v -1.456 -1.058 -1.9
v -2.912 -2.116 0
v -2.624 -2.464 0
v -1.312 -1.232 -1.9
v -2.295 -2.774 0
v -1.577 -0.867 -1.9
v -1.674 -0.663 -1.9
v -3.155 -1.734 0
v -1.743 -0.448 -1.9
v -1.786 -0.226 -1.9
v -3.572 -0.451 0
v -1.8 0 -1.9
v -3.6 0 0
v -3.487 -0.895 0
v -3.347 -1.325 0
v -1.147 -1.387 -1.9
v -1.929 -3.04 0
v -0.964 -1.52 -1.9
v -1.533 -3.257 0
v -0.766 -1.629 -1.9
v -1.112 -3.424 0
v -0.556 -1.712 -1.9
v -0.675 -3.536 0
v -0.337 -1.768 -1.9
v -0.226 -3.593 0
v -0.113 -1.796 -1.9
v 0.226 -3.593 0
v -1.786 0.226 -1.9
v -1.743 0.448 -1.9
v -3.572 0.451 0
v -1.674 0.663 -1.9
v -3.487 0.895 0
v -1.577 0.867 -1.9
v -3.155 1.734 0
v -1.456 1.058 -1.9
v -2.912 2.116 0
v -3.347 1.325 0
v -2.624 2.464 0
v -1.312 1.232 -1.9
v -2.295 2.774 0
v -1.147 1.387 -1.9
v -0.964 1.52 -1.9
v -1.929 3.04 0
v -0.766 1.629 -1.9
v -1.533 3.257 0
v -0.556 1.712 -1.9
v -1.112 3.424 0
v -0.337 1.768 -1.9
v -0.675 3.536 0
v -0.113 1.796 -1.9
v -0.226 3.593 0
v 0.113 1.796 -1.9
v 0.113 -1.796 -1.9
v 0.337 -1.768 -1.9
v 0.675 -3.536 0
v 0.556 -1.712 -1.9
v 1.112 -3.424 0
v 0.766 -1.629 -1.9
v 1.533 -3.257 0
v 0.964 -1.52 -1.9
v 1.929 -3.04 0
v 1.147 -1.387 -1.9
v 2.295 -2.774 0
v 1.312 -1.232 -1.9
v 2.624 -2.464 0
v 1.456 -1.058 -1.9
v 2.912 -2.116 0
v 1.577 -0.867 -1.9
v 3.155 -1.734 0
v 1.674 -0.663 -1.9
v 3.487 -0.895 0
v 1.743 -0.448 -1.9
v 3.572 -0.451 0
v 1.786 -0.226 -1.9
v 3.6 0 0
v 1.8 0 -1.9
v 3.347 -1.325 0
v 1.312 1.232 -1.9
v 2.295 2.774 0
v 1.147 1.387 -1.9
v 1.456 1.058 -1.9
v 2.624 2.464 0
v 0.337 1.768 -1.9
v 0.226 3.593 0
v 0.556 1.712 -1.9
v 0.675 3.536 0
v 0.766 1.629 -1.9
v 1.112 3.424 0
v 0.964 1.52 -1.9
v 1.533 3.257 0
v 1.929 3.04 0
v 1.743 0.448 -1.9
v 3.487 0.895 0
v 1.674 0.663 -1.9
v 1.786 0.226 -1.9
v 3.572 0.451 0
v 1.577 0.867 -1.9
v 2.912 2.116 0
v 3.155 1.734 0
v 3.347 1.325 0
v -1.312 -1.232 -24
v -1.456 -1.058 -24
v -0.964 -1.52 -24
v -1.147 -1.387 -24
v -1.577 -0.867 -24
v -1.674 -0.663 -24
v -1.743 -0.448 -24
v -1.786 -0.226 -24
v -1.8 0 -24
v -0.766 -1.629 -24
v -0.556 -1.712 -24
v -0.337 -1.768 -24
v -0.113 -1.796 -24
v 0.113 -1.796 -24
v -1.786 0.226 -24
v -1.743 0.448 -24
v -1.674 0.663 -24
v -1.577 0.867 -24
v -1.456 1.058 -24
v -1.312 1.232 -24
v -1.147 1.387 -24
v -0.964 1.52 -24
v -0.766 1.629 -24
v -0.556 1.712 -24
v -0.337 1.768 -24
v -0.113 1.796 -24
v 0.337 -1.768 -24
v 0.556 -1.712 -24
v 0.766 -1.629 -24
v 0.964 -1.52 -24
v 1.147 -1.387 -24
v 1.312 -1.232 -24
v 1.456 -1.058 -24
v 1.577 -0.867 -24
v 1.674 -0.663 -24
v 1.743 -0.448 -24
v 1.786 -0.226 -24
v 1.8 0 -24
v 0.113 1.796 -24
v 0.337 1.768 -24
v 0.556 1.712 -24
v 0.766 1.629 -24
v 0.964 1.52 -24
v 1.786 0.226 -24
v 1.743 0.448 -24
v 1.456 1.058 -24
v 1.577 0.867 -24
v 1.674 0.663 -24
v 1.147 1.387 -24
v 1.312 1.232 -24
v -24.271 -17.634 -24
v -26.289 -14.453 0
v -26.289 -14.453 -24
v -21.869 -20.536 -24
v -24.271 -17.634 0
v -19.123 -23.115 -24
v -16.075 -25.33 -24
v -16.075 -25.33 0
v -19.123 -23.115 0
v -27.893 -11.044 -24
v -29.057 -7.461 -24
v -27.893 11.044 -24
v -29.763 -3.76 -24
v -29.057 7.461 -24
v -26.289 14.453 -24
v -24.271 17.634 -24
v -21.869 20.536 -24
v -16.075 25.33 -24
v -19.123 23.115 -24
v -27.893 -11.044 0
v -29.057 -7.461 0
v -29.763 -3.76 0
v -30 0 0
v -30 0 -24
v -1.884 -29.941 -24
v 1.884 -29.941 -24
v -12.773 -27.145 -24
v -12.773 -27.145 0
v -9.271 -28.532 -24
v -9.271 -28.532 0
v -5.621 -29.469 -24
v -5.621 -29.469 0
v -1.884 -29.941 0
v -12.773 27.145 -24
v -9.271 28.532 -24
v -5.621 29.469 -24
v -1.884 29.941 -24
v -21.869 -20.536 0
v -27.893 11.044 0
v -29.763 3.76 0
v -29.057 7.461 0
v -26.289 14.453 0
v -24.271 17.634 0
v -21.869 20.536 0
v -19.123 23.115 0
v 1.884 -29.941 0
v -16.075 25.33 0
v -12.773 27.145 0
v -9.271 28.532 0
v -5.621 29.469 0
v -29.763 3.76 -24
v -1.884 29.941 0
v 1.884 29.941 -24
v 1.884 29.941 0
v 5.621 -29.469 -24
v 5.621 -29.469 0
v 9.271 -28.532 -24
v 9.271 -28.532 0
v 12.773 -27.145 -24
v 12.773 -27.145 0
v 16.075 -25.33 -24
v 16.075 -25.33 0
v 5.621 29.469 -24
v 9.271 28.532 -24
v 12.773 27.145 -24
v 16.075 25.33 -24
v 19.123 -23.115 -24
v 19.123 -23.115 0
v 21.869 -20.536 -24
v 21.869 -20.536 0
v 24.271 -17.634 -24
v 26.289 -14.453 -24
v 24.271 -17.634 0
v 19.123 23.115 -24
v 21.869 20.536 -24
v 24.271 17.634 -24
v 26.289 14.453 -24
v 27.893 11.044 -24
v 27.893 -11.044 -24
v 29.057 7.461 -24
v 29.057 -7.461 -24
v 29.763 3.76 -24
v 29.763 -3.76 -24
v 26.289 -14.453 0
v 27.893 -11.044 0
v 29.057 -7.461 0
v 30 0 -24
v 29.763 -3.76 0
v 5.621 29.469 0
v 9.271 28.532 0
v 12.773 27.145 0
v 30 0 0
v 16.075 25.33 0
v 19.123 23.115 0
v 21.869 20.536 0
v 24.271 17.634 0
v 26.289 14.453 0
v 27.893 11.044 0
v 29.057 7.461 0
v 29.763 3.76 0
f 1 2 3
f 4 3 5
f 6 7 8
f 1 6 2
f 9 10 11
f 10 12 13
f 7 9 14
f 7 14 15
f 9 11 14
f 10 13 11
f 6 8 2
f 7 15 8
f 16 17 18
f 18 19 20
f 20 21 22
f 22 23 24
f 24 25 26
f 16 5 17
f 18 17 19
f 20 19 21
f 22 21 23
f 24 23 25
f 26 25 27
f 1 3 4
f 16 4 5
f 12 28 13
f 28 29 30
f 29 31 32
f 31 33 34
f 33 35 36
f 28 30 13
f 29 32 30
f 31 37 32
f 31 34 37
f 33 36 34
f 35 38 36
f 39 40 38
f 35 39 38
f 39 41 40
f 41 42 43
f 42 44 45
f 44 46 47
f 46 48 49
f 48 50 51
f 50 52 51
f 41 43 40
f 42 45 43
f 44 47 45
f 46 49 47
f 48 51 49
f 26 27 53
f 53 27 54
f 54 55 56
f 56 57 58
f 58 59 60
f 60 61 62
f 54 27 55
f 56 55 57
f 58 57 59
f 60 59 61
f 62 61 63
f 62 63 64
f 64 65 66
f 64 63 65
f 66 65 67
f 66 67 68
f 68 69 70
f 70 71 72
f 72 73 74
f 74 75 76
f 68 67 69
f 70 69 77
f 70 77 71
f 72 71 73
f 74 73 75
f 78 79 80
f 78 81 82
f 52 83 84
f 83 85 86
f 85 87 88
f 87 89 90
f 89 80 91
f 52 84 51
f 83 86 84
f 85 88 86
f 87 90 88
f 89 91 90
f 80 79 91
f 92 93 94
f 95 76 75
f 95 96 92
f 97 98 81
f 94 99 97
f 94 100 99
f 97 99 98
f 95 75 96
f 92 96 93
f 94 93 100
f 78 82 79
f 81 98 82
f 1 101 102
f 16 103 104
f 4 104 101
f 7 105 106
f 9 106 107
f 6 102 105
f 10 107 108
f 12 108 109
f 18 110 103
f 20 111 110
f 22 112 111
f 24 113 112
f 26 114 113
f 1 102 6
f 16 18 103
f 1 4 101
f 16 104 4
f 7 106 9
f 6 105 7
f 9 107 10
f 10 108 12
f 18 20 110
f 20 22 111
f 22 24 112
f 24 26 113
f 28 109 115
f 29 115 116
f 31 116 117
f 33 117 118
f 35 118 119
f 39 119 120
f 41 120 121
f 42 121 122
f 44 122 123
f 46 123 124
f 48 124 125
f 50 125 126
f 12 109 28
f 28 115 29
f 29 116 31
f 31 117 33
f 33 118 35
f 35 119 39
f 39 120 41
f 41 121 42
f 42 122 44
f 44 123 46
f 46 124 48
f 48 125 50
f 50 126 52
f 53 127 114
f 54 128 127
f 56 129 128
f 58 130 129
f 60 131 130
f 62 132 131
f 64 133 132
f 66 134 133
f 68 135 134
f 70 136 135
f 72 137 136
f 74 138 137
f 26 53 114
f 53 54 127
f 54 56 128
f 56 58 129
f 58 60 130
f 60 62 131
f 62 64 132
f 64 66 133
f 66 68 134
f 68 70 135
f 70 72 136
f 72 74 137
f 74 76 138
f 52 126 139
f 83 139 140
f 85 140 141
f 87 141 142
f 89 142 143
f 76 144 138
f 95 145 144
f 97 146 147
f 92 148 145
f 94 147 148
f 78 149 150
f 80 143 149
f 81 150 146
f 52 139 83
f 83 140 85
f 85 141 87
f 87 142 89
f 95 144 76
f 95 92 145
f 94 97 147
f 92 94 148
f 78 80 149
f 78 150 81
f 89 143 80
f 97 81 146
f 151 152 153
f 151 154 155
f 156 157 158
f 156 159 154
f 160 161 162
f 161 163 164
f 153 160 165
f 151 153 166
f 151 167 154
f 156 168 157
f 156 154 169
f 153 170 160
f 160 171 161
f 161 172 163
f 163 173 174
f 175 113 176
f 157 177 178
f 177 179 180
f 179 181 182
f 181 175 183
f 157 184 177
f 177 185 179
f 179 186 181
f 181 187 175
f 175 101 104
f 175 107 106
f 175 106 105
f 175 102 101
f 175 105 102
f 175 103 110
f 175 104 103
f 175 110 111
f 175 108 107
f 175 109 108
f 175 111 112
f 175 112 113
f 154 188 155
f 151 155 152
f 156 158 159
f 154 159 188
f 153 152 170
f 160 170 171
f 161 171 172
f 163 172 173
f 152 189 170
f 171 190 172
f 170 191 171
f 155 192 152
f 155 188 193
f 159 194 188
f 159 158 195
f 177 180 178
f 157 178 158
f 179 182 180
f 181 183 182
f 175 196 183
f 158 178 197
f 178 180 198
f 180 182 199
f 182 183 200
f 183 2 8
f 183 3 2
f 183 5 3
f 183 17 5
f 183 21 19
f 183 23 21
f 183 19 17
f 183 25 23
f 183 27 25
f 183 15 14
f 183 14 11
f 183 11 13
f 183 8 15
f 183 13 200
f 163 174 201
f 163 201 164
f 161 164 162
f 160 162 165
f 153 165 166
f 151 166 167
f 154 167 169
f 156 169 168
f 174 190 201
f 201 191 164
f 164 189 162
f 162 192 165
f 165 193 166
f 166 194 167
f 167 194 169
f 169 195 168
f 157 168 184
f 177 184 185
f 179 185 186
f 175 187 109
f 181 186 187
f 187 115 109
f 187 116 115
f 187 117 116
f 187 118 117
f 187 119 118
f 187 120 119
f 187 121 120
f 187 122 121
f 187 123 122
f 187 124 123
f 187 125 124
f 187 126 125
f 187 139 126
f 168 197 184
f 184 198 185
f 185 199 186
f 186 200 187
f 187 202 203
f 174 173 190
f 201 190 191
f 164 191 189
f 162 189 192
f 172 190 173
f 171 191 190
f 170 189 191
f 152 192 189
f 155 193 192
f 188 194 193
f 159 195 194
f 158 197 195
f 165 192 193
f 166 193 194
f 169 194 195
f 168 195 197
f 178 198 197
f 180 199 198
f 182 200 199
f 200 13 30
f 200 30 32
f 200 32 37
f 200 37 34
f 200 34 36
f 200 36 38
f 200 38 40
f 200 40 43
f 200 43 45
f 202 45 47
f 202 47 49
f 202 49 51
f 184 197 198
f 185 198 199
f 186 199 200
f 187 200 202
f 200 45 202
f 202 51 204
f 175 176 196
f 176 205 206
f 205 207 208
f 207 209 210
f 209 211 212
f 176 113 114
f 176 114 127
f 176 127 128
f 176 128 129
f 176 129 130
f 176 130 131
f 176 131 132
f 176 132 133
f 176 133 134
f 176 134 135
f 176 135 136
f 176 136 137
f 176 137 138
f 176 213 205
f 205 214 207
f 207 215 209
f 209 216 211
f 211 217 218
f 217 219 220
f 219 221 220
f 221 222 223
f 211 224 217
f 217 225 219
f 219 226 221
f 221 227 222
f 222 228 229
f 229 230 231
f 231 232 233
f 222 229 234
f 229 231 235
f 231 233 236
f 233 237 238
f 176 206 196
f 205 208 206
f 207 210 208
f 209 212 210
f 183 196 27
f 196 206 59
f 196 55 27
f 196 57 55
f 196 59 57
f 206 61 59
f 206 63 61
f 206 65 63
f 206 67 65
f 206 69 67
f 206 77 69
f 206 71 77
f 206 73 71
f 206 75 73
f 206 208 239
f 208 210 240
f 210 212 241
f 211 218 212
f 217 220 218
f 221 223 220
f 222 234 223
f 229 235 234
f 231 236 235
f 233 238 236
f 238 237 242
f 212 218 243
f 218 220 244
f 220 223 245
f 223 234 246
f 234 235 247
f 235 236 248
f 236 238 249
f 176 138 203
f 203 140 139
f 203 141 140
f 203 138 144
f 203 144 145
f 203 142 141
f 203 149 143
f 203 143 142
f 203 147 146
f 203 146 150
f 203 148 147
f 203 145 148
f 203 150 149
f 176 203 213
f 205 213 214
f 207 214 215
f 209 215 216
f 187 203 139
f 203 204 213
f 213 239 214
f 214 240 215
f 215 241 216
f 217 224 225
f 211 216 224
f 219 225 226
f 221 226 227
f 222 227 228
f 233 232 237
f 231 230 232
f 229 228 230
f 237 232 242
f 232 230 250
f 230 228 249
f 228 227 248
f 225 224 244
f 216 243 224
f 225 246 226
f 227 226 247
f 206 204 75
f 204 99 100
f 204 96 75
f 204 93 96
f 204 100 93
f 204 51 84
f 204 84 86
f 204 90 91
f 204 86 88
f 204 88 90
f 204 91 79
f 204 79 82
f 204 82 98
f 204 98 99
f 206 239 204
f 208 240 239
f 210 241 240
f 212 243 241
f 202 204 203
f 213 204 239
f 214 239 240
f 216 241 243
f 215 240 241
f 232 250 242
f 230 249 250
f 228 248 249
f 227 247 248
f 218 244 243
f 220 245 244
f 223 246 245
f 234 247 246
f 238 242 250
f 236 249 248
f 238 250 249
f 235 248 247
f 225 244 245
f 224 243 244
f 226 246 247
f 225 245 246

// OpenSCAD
$fn = 50;

difference() {
	union() {
		translate(v = [0, 0, -24.0]) {
			cylinder(h = 24, r = 30.0);
		}
	}
	union() {
		translate(v = [0, 0, 0]) {
			rotate(a = [0, 0, 0]) {
				difference() {
					union() {
						translate(v = [0, 0, -27.0]) {
							cylinder(h = 27, r = 1.5);
						}
						translate(v = [0, 0, -1.9]) {
							cylinder(h = 1.9, r1 = 1.8, r2 = 3.6);
						}
						translate(v = [0, 0, -27.0]) {
							cylinder(h = 27, r = 1.8);
						}
						translate(v = [0, 0, -27.0]) {
							cylinder(h = 27, r = 1.5);
						}
					}
					union();
				}
			}
		}
	}
}
